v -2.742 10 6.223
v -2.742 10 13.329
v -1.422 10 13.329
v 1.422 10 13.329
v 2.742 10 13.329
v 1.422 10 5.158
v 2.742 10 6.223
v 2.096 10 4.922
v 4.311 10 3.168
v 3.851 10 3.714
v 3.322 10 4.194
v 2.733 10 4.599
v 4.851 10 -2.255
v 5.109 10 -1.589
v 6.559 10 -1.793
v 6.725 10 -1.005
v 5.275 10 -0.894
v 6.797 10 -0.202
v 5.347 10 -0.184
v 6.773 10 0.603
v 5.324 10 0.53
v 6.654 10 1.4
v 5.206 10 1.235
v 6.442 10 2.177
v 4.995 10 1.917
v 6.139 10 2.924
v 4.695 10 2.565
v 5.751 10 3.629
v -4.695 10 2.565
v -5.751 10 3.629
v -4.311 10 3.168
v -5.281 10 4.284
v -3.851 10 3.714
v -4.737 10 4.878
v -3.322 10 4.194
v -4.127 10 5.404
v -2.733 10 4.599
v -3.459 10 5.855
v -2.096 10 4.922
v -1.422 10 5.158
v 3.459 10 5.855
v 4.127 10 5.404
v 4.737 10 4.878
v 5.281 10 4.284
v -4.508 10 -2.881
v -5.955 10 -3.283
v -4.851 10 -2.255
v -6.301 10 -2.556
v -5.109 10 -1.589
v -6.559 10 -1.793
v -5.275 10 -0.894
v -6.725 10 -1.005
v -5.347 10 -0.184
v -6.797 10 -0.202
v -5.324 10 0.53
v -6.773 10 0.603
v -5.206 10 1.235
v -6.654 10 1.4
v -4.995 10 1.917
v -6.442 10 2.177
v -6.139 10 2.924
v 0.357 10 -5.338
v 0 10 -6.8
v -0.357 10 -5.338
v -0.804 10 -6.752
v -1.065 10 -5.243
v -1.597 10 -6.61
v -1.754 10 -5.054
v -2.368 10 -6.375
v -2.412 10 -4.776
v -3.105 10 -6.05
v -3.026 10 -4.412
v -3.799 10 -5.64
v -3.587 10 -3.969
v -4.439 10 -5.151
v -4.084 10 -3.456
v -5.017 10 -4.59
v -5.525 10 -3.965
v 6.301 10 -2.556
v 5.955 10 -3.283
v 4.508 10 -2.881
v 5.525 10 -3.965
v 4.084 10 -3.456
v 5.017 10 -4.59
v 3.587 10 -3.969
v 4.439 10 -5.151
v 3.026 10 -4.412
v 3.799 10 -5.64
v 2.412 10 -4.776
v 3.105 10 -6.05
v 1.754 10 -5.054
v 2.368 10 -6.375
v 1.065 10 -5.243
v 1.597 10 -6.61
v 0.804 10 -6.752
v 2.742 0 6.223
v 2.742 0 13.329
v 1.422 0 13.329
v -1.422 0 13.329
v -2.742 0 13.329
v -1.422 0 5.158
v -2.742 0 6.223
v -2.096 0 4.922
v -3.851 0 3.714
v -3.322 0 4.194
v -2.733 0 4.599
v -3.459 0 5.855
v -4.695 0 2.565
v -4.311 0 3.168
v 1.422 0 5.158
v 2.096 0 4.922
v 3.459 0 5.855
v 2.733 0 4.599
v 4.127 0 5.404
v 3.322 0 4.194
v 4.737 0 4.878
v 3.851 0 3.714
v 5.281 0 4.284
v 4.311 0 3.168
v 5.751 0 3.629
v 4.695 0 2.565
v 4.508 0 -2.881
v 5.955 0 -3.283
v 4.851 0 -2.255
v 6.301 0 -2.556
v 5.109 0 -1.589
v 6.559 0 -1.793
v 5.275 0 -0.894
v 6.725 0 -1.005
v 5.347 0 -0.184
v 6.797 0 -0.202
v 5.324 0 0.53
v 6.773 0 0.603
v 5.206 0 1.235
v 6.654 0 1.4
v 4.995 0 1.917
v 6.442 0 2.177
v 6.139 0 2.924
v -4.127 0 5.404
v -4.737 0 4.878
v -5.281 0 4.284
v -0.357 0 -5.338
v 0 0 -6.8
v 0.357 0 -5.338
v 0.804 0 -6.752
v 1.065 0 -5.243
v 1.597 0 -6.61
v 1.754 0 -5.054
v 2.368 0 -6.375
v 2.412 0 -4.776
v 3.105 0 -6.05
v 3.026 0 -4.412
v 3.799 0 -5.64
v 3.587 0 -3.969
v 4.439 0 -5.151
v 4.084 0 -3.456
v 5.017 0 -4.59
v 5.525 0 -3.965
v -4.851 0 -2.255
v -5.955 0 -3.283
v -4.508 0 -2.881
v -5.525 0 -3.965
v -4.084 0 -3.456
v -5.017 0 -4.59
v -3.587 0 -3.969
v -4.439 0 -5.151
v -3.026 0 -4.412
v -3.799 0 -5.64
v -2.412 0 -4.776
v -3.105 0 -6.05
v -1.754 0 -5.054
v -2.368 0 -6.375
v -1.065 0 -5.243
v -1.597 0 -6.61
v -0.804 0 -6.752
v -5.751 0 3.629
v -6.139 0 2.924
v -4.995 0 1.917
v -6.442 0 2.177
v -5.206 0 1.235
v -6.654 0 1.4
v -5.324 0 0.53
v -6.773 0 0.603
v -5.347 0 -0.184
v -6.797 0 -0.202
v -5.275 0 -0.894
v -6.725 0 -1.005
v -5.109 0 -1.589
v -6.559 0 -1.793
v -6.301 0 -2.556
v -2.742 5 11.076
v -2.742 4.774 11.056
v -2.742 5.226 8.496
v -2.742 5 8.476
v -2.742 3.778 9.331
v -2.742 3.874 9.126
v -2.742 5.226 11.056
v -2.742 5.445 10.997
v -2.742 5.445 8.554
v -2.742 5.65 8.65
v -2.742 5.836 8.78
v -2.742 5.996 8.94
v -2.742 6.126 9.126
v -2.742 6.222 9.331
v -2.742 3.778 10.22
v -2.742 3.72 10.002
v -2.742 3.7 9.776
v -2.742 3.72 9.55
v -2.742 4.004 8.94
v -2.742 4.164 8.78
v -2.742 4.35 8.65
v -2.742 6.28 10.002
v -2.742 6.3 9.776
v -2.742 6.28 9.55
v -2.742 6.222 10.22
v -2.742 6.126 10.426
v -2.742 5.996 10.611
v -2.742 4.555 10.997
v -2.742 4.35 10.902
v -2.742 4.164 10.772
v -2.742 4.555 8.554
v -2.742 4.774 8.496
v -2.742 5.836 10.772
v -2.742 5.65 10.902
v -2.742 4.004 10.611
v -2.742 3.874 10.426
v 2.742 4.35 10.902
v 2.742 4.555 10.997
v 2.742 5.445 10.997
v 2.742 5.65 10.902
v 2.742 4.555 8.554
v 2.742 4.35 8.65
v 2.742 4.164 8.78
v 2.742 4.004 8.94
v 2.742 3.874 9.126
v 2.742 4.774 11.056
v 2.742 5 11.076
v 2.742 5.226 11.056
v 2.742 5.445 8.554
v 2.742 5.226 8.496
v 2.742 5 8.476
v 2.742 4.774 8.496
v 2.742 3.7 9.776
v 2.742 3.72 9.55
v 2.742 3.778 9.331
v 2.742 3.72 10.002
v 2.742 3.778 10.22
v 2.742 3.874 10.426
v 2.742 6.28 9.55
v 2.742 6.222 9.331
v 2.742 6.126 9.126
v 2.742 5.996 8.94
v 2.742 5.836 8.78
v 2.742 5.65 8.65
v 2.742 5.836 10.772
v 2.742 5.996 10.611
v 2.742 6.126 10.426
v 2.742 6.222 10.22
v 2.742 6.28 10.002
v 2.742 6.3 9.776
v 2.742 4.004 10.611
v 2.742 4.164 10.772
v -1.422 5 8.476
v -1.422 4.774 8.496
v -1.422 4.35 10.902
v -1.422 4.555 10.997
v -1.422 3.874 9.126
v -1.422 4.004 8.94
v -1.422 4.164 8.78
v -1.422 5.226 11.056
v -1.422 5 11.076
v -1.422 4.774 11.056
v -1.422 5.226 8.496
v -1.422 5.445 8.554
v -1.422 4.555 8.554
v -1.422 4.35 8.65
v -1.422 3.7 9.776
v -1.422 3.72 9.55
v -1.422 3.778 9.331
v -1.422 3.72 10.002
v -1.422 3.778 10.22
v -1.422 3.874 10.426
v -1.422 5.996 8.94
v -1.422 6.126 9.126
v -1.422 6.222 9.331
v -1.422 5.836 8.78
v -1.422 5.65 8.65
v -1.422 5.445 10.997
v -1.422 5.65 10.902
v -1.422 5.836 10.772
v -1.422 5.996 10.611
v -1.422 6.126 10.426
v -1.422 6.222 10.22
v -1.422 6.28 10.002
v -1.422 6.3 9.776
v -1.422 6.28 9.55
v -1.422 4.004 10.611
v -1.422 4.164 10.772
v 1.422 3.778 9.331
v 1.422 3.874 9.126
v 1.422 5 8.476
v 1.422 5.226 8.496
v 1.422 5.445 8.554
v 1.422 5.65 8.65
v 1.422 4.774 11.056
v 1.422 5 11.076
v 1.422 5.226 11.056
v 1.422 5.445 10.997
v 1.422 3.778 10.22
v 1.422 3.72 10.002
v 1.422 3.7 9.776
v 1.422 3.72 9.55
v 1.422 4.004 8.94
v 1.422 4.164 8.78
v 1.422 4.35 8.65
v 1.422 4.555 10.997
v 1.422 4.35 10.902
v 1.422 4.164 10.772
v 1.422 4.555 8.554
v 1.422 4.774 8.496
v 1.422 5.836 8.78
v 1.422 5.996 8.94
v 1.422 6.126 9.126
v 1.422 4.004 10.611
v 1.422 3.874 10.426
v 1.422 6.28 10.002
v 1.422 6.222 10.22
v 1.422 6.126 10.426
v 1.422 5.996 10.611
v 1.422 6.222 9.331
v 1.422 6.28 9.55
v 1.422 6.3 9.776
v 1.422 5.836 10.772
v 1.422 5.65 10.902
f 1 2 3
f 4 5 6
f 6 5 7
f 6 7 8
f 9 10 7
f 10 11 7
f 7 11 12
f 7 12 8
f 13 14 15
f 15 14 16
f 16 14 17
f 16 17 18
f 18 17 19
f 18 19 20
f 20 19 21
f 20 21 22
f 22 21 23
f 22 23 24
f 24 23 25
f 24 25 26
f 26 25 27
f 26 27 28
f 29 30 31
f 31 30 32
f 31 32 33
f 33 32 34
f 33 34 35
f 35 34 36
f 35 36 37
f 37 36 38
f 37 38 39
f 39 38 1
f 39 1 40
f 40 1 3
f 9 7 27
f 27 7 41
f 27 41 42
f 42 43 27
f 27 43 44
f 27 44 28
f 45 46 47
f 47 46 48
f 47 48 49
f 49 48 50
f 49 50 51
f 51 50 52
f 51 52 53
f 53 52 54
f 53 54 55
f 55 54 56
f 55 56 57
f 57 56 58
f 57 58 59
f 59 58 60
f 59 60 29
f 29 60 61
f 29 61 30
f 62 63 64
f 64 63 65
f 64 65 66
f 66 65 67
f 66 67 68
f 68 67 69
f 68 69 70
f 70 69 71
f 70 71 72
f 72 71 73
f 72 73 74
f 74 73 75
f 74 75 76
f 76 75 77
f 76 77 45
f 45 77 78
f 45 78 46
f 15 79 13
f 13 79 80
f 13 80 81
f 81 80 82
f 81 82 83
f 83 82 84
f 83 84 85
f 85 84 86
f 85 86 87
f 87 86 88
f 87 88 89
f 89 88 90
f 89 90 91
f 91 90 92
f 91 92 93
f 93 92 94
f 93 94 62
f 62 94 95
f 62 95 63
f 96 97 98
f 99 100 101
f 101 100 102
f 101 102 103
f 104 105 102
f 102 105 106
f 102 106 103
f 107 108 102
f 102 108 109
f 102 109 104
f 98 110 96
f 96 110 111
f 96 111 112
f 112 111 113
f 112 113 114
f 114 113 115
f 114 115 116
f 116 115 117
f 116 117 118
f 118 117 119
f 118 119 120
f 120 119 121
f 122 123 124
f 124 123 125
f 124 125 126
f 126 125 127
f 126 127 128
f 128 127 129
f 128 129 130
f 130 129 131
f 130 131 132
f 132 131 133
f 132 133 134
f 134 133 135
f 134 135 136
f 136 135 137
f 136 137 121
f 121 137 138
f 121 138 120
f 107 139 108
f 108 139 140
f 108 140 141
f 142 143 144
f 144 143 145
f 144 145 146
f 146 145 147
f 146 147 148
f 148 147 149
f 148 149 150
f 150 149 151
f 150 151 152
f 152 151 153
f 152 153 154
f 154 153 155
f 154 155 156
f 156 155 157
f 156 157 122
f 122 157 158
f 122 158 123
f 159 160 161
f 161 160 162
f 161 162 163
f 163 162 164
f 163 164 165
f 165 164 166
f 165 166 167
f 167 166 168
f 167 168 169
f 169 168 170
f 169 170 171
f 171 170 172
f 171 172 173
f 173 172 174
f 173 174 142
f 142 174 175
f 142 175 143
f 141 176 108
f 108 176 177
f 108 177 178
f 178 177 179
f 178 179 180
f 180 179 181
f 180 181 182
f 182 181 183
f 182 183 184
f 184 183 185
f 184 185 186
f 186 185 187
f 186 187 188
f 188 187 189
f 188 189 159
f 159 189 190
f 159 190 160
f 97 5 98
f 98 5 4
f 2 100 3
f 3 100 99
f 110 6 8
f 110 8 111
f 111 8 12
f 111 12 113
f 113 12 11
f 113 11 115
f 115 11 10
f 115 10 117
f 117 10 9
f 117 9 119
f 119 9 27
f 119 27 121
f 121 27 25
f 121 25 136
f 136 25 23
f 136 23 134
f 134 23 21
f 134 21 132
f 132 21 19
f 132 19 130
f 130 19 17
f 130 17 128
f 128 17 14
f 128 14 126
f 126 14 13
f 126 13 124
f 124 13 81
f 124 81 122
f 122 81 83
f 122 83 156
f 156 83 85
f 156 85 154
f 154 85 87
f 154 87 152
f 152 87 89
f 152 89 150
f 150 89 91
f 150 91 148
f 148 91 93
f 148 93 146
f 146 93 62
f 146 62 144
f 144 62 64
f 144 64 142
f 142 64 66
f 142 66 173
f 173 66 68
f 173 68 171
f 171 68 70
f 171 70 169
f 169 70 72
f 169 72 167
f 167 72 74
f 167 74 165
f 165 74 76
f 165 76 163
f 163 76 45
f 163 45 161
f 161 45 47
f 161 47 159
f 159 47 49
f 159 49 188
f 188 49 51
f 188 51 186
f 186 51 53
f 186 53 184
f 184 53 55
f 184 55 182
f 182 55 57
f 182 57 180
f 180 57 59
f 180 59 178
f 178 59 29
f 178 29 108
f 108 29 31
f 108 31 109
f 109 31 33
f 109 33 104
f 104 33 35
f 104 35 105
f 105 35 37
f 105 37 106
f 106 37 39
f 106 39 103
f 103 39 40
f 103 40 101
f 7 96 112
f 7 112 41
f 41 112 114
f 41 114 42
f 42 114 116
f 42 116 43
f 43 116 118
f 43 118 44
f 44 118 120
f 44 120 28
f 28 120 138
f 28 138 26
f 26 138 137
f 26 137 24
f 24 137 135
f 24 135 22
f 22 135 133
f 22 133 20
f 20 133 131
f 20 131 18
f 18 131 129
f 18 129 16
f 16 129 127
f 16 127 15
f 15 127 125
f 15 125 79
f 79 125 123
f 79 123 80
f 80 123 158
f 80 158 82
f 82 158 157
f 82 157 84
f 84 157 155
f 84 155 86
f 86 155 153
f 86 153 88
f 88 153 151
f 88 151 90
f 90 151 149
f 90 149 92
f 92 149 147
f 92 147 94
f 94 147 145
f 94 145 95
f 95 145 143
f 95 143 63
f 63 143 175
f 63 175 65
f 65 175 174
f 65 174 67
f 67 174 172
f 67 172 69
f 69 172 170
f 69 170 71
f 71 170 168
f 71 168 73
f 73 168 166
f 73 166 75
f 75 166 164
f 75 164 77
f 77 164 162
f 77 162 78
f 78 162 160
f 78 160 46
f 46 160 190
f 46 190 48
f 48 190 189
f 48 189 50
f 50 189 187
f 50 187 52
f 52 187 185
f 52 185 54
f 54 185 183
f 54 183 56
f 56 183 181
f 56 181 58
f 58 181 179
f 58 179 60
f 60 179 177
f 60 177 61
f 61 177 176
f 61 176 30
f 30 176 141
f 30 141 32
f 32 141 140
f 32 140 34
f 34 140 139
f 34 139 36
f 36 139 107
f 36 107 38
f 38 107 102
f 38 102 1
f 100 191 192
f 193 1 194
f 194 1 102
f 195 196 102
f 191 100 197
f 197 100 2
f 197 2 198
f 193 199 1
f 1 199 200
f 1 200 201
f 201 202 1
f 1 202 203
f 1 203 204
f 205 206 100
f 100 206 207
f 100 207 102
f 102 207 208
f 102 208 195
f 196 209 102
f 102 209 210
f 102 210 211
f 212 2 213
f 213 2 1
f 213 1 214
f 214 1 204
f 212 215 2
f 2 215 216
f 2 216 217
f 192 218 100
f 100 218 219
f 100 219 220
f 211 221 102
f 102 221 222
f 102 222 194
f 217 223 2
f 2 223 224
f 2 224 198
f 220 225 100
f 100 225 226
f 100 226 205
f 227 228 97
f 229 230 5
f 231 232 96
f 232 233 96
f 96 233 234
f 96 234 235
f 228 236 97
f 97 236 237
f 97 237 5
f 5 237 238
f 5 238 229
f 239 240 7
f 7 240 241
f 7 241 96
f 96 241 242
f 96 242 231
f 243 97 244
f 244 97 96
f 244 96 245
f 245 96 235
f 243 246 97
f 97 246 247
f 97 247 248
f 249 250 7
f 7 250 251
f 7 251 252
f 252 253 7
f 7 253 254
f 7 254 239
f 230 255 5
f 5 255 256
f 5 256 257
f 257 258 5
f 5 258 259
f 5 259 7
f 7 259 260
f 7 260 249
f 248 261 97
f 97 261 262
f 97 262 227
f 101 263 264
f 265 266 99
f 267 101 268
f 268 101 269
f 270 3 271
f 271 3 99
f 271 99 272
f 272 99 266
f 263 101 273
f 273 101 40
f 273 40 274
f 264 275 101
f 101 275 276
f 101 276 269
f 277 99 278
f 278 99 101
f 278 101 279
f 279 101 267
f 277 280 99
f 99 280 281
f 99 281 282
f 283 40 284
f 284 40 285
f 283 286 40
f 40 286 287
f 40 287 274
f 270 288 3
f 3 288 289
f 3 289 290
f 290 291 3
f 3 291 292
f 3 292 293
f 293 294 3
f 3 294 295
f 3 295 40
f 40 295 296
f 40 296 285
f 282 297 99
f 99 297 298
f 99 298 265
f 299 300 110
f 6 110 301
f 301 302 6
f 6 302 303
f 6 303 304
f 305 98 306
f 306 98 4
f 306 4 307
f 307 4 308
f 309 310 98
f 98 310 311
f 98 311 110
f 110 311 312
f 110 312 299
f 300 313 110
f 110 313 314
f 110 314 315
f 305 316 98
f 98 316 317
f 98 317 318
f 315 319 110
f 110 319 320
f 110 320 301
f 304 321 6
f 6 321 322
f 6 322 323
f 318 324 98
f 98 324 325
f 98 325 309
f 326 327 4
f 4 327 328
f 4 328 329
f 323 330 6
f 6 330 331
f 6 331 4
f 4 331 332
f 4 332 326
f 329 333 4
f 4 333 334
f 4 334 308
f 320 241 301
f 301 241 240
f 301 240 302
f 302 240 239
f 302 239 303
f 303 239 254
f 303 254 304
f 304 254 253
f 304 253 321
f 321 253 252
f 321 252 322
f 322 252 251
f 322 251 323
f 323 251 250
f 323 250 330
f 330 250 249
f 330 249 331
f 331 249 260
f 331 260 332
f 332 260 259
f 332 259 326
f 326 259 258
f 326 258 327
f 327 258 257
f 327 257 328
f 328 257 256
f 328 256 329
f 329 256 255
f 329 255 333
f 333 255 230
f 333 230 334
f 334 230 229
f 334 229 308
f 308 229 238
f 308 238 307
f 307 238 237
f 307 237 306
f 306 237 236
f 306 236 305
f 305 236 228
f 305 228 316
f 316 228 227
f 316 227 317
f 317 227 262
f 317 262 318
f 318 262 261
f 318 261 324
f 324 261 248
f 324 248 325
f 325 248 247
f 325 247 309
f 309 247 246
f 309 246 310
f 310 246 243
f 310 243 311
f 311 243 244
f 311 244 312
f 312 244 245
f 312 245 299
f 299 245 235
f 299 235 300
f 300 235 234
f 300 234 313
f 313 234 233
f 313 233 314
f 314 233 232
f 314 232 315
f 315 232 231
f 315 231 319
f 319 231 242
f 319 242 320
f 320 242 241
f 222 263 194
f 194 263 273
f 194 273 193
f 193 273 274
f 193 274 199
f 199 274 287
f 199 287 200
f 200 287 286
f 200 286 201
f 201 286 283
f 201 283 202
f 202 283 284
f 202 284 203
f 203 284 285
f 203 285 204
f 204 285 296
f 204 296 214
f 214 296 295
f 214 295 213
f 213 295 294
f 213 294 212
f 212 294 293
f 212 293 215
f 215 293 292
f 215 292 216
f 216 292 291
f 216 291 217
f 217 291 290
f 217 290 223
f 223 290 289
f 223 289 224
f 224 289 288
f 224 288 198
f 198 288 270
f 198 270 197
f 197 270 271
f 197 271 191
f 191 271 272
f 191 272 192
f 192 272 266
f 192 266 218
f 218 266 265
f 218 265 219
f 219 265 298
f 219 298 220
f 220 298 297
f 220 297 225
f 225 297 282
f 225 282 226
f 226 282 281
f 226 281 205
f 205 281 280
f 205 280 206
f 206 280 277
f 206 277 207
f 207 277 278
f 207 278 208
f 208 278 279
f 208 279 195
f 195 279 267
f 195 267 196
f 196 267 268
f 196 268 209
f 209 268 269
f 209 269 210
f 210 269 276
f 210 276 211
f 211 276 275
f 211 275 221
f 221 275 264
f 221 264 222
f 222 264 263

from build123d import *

# Parameters (mm, degrees)
SKETCH_1_R          = 6.8
EXTRUDE_1_DEPTH     = 10
SKETCH_3_W          = 5.484573778
SKETCH_3_H          = 13.374261712
EXTRUDE_2_DEPTH     = 10
SKETCH_2_R          = 5.35
CUT_EXTRUDE_1_DEPTH = 10
SKETCH_4_W          = 2.844022018
SKETCH_4_H          = 17.569991778
CUT_EXTRUDE_2_DEPTH = 10
SKETCH_5_R          = 1.3
CUT_EXTRUDE_3_DEPTH = 10


with BuildPart() as part:
    # 草图1 → 凸台-拉伸1 (new body)
    with BuildSketch(Plane(origin=(0, 0, 0), x_dir=(1, 0, 0), z_dir=(0, 1, 0))):
        with Locations(Location((0, 0, 0), (0, 0, 270))):
            Circle(SKETCH_1_R)
    extrude(amount=EXTRUDE_1_DEPTH)

    # 草图3 → 凸台-拉伸2 (add)
    with BuildSketch(Plane(origin=(0, 0, 0), x_dir=(1, 0, 0), z_dir=(0, 1, 0))):
        with Locations((0, -6.642082697)):
            Rectangle(SKETCH_3_W, SKETCH_3_H)
    extrude(amount=EXTRUDE_2_DEPTH)

    # 草图2 → 切除-拉伸1 (cut)
    with BuildSketch(Plane(origin=(0, 10, 0), x_dir=(1, 0, 0), z_dir=(0, 1, 0))):
        with Locations(Location((0, 0, 0), (0, 0, 270))):
            Circle(SKETCH_2_R)
    extrude(amount=-CUT_EXTRUDE_1_DEPTH, mode=Mode.SUBTRACT)

    # 草图4 → 切除-拉伸2 (cut)
    with BuildSketch(Plane(origin=(0, 0, 0), x_dir=(1, 0, 0), z_dir=(0, 1, 0))):
        with Locations((0, -13.329213553)):
            Rectangle(SKETCH_4_W, SKETCH_4_H)
    extrude(amount=CUT_EXTRUDE_2_DEPTH, mode=Mode.SUBTRACT)

    # 草图5 → 切除-拉伸3 (cut)
    with BuildSketch(Plane(origin=(2.742286889, 0, 0), x_dir=(0, 0, -1), z_dir=(1, 0, 0))):
        with Locations((-9.775871094, 5)):
            Circle(SKETCH_5_R)
    extrude(amount=-CUT_EXTRUDE_3_DEPTH, mode=Mode.SUBTRACT)


solid = part.part
